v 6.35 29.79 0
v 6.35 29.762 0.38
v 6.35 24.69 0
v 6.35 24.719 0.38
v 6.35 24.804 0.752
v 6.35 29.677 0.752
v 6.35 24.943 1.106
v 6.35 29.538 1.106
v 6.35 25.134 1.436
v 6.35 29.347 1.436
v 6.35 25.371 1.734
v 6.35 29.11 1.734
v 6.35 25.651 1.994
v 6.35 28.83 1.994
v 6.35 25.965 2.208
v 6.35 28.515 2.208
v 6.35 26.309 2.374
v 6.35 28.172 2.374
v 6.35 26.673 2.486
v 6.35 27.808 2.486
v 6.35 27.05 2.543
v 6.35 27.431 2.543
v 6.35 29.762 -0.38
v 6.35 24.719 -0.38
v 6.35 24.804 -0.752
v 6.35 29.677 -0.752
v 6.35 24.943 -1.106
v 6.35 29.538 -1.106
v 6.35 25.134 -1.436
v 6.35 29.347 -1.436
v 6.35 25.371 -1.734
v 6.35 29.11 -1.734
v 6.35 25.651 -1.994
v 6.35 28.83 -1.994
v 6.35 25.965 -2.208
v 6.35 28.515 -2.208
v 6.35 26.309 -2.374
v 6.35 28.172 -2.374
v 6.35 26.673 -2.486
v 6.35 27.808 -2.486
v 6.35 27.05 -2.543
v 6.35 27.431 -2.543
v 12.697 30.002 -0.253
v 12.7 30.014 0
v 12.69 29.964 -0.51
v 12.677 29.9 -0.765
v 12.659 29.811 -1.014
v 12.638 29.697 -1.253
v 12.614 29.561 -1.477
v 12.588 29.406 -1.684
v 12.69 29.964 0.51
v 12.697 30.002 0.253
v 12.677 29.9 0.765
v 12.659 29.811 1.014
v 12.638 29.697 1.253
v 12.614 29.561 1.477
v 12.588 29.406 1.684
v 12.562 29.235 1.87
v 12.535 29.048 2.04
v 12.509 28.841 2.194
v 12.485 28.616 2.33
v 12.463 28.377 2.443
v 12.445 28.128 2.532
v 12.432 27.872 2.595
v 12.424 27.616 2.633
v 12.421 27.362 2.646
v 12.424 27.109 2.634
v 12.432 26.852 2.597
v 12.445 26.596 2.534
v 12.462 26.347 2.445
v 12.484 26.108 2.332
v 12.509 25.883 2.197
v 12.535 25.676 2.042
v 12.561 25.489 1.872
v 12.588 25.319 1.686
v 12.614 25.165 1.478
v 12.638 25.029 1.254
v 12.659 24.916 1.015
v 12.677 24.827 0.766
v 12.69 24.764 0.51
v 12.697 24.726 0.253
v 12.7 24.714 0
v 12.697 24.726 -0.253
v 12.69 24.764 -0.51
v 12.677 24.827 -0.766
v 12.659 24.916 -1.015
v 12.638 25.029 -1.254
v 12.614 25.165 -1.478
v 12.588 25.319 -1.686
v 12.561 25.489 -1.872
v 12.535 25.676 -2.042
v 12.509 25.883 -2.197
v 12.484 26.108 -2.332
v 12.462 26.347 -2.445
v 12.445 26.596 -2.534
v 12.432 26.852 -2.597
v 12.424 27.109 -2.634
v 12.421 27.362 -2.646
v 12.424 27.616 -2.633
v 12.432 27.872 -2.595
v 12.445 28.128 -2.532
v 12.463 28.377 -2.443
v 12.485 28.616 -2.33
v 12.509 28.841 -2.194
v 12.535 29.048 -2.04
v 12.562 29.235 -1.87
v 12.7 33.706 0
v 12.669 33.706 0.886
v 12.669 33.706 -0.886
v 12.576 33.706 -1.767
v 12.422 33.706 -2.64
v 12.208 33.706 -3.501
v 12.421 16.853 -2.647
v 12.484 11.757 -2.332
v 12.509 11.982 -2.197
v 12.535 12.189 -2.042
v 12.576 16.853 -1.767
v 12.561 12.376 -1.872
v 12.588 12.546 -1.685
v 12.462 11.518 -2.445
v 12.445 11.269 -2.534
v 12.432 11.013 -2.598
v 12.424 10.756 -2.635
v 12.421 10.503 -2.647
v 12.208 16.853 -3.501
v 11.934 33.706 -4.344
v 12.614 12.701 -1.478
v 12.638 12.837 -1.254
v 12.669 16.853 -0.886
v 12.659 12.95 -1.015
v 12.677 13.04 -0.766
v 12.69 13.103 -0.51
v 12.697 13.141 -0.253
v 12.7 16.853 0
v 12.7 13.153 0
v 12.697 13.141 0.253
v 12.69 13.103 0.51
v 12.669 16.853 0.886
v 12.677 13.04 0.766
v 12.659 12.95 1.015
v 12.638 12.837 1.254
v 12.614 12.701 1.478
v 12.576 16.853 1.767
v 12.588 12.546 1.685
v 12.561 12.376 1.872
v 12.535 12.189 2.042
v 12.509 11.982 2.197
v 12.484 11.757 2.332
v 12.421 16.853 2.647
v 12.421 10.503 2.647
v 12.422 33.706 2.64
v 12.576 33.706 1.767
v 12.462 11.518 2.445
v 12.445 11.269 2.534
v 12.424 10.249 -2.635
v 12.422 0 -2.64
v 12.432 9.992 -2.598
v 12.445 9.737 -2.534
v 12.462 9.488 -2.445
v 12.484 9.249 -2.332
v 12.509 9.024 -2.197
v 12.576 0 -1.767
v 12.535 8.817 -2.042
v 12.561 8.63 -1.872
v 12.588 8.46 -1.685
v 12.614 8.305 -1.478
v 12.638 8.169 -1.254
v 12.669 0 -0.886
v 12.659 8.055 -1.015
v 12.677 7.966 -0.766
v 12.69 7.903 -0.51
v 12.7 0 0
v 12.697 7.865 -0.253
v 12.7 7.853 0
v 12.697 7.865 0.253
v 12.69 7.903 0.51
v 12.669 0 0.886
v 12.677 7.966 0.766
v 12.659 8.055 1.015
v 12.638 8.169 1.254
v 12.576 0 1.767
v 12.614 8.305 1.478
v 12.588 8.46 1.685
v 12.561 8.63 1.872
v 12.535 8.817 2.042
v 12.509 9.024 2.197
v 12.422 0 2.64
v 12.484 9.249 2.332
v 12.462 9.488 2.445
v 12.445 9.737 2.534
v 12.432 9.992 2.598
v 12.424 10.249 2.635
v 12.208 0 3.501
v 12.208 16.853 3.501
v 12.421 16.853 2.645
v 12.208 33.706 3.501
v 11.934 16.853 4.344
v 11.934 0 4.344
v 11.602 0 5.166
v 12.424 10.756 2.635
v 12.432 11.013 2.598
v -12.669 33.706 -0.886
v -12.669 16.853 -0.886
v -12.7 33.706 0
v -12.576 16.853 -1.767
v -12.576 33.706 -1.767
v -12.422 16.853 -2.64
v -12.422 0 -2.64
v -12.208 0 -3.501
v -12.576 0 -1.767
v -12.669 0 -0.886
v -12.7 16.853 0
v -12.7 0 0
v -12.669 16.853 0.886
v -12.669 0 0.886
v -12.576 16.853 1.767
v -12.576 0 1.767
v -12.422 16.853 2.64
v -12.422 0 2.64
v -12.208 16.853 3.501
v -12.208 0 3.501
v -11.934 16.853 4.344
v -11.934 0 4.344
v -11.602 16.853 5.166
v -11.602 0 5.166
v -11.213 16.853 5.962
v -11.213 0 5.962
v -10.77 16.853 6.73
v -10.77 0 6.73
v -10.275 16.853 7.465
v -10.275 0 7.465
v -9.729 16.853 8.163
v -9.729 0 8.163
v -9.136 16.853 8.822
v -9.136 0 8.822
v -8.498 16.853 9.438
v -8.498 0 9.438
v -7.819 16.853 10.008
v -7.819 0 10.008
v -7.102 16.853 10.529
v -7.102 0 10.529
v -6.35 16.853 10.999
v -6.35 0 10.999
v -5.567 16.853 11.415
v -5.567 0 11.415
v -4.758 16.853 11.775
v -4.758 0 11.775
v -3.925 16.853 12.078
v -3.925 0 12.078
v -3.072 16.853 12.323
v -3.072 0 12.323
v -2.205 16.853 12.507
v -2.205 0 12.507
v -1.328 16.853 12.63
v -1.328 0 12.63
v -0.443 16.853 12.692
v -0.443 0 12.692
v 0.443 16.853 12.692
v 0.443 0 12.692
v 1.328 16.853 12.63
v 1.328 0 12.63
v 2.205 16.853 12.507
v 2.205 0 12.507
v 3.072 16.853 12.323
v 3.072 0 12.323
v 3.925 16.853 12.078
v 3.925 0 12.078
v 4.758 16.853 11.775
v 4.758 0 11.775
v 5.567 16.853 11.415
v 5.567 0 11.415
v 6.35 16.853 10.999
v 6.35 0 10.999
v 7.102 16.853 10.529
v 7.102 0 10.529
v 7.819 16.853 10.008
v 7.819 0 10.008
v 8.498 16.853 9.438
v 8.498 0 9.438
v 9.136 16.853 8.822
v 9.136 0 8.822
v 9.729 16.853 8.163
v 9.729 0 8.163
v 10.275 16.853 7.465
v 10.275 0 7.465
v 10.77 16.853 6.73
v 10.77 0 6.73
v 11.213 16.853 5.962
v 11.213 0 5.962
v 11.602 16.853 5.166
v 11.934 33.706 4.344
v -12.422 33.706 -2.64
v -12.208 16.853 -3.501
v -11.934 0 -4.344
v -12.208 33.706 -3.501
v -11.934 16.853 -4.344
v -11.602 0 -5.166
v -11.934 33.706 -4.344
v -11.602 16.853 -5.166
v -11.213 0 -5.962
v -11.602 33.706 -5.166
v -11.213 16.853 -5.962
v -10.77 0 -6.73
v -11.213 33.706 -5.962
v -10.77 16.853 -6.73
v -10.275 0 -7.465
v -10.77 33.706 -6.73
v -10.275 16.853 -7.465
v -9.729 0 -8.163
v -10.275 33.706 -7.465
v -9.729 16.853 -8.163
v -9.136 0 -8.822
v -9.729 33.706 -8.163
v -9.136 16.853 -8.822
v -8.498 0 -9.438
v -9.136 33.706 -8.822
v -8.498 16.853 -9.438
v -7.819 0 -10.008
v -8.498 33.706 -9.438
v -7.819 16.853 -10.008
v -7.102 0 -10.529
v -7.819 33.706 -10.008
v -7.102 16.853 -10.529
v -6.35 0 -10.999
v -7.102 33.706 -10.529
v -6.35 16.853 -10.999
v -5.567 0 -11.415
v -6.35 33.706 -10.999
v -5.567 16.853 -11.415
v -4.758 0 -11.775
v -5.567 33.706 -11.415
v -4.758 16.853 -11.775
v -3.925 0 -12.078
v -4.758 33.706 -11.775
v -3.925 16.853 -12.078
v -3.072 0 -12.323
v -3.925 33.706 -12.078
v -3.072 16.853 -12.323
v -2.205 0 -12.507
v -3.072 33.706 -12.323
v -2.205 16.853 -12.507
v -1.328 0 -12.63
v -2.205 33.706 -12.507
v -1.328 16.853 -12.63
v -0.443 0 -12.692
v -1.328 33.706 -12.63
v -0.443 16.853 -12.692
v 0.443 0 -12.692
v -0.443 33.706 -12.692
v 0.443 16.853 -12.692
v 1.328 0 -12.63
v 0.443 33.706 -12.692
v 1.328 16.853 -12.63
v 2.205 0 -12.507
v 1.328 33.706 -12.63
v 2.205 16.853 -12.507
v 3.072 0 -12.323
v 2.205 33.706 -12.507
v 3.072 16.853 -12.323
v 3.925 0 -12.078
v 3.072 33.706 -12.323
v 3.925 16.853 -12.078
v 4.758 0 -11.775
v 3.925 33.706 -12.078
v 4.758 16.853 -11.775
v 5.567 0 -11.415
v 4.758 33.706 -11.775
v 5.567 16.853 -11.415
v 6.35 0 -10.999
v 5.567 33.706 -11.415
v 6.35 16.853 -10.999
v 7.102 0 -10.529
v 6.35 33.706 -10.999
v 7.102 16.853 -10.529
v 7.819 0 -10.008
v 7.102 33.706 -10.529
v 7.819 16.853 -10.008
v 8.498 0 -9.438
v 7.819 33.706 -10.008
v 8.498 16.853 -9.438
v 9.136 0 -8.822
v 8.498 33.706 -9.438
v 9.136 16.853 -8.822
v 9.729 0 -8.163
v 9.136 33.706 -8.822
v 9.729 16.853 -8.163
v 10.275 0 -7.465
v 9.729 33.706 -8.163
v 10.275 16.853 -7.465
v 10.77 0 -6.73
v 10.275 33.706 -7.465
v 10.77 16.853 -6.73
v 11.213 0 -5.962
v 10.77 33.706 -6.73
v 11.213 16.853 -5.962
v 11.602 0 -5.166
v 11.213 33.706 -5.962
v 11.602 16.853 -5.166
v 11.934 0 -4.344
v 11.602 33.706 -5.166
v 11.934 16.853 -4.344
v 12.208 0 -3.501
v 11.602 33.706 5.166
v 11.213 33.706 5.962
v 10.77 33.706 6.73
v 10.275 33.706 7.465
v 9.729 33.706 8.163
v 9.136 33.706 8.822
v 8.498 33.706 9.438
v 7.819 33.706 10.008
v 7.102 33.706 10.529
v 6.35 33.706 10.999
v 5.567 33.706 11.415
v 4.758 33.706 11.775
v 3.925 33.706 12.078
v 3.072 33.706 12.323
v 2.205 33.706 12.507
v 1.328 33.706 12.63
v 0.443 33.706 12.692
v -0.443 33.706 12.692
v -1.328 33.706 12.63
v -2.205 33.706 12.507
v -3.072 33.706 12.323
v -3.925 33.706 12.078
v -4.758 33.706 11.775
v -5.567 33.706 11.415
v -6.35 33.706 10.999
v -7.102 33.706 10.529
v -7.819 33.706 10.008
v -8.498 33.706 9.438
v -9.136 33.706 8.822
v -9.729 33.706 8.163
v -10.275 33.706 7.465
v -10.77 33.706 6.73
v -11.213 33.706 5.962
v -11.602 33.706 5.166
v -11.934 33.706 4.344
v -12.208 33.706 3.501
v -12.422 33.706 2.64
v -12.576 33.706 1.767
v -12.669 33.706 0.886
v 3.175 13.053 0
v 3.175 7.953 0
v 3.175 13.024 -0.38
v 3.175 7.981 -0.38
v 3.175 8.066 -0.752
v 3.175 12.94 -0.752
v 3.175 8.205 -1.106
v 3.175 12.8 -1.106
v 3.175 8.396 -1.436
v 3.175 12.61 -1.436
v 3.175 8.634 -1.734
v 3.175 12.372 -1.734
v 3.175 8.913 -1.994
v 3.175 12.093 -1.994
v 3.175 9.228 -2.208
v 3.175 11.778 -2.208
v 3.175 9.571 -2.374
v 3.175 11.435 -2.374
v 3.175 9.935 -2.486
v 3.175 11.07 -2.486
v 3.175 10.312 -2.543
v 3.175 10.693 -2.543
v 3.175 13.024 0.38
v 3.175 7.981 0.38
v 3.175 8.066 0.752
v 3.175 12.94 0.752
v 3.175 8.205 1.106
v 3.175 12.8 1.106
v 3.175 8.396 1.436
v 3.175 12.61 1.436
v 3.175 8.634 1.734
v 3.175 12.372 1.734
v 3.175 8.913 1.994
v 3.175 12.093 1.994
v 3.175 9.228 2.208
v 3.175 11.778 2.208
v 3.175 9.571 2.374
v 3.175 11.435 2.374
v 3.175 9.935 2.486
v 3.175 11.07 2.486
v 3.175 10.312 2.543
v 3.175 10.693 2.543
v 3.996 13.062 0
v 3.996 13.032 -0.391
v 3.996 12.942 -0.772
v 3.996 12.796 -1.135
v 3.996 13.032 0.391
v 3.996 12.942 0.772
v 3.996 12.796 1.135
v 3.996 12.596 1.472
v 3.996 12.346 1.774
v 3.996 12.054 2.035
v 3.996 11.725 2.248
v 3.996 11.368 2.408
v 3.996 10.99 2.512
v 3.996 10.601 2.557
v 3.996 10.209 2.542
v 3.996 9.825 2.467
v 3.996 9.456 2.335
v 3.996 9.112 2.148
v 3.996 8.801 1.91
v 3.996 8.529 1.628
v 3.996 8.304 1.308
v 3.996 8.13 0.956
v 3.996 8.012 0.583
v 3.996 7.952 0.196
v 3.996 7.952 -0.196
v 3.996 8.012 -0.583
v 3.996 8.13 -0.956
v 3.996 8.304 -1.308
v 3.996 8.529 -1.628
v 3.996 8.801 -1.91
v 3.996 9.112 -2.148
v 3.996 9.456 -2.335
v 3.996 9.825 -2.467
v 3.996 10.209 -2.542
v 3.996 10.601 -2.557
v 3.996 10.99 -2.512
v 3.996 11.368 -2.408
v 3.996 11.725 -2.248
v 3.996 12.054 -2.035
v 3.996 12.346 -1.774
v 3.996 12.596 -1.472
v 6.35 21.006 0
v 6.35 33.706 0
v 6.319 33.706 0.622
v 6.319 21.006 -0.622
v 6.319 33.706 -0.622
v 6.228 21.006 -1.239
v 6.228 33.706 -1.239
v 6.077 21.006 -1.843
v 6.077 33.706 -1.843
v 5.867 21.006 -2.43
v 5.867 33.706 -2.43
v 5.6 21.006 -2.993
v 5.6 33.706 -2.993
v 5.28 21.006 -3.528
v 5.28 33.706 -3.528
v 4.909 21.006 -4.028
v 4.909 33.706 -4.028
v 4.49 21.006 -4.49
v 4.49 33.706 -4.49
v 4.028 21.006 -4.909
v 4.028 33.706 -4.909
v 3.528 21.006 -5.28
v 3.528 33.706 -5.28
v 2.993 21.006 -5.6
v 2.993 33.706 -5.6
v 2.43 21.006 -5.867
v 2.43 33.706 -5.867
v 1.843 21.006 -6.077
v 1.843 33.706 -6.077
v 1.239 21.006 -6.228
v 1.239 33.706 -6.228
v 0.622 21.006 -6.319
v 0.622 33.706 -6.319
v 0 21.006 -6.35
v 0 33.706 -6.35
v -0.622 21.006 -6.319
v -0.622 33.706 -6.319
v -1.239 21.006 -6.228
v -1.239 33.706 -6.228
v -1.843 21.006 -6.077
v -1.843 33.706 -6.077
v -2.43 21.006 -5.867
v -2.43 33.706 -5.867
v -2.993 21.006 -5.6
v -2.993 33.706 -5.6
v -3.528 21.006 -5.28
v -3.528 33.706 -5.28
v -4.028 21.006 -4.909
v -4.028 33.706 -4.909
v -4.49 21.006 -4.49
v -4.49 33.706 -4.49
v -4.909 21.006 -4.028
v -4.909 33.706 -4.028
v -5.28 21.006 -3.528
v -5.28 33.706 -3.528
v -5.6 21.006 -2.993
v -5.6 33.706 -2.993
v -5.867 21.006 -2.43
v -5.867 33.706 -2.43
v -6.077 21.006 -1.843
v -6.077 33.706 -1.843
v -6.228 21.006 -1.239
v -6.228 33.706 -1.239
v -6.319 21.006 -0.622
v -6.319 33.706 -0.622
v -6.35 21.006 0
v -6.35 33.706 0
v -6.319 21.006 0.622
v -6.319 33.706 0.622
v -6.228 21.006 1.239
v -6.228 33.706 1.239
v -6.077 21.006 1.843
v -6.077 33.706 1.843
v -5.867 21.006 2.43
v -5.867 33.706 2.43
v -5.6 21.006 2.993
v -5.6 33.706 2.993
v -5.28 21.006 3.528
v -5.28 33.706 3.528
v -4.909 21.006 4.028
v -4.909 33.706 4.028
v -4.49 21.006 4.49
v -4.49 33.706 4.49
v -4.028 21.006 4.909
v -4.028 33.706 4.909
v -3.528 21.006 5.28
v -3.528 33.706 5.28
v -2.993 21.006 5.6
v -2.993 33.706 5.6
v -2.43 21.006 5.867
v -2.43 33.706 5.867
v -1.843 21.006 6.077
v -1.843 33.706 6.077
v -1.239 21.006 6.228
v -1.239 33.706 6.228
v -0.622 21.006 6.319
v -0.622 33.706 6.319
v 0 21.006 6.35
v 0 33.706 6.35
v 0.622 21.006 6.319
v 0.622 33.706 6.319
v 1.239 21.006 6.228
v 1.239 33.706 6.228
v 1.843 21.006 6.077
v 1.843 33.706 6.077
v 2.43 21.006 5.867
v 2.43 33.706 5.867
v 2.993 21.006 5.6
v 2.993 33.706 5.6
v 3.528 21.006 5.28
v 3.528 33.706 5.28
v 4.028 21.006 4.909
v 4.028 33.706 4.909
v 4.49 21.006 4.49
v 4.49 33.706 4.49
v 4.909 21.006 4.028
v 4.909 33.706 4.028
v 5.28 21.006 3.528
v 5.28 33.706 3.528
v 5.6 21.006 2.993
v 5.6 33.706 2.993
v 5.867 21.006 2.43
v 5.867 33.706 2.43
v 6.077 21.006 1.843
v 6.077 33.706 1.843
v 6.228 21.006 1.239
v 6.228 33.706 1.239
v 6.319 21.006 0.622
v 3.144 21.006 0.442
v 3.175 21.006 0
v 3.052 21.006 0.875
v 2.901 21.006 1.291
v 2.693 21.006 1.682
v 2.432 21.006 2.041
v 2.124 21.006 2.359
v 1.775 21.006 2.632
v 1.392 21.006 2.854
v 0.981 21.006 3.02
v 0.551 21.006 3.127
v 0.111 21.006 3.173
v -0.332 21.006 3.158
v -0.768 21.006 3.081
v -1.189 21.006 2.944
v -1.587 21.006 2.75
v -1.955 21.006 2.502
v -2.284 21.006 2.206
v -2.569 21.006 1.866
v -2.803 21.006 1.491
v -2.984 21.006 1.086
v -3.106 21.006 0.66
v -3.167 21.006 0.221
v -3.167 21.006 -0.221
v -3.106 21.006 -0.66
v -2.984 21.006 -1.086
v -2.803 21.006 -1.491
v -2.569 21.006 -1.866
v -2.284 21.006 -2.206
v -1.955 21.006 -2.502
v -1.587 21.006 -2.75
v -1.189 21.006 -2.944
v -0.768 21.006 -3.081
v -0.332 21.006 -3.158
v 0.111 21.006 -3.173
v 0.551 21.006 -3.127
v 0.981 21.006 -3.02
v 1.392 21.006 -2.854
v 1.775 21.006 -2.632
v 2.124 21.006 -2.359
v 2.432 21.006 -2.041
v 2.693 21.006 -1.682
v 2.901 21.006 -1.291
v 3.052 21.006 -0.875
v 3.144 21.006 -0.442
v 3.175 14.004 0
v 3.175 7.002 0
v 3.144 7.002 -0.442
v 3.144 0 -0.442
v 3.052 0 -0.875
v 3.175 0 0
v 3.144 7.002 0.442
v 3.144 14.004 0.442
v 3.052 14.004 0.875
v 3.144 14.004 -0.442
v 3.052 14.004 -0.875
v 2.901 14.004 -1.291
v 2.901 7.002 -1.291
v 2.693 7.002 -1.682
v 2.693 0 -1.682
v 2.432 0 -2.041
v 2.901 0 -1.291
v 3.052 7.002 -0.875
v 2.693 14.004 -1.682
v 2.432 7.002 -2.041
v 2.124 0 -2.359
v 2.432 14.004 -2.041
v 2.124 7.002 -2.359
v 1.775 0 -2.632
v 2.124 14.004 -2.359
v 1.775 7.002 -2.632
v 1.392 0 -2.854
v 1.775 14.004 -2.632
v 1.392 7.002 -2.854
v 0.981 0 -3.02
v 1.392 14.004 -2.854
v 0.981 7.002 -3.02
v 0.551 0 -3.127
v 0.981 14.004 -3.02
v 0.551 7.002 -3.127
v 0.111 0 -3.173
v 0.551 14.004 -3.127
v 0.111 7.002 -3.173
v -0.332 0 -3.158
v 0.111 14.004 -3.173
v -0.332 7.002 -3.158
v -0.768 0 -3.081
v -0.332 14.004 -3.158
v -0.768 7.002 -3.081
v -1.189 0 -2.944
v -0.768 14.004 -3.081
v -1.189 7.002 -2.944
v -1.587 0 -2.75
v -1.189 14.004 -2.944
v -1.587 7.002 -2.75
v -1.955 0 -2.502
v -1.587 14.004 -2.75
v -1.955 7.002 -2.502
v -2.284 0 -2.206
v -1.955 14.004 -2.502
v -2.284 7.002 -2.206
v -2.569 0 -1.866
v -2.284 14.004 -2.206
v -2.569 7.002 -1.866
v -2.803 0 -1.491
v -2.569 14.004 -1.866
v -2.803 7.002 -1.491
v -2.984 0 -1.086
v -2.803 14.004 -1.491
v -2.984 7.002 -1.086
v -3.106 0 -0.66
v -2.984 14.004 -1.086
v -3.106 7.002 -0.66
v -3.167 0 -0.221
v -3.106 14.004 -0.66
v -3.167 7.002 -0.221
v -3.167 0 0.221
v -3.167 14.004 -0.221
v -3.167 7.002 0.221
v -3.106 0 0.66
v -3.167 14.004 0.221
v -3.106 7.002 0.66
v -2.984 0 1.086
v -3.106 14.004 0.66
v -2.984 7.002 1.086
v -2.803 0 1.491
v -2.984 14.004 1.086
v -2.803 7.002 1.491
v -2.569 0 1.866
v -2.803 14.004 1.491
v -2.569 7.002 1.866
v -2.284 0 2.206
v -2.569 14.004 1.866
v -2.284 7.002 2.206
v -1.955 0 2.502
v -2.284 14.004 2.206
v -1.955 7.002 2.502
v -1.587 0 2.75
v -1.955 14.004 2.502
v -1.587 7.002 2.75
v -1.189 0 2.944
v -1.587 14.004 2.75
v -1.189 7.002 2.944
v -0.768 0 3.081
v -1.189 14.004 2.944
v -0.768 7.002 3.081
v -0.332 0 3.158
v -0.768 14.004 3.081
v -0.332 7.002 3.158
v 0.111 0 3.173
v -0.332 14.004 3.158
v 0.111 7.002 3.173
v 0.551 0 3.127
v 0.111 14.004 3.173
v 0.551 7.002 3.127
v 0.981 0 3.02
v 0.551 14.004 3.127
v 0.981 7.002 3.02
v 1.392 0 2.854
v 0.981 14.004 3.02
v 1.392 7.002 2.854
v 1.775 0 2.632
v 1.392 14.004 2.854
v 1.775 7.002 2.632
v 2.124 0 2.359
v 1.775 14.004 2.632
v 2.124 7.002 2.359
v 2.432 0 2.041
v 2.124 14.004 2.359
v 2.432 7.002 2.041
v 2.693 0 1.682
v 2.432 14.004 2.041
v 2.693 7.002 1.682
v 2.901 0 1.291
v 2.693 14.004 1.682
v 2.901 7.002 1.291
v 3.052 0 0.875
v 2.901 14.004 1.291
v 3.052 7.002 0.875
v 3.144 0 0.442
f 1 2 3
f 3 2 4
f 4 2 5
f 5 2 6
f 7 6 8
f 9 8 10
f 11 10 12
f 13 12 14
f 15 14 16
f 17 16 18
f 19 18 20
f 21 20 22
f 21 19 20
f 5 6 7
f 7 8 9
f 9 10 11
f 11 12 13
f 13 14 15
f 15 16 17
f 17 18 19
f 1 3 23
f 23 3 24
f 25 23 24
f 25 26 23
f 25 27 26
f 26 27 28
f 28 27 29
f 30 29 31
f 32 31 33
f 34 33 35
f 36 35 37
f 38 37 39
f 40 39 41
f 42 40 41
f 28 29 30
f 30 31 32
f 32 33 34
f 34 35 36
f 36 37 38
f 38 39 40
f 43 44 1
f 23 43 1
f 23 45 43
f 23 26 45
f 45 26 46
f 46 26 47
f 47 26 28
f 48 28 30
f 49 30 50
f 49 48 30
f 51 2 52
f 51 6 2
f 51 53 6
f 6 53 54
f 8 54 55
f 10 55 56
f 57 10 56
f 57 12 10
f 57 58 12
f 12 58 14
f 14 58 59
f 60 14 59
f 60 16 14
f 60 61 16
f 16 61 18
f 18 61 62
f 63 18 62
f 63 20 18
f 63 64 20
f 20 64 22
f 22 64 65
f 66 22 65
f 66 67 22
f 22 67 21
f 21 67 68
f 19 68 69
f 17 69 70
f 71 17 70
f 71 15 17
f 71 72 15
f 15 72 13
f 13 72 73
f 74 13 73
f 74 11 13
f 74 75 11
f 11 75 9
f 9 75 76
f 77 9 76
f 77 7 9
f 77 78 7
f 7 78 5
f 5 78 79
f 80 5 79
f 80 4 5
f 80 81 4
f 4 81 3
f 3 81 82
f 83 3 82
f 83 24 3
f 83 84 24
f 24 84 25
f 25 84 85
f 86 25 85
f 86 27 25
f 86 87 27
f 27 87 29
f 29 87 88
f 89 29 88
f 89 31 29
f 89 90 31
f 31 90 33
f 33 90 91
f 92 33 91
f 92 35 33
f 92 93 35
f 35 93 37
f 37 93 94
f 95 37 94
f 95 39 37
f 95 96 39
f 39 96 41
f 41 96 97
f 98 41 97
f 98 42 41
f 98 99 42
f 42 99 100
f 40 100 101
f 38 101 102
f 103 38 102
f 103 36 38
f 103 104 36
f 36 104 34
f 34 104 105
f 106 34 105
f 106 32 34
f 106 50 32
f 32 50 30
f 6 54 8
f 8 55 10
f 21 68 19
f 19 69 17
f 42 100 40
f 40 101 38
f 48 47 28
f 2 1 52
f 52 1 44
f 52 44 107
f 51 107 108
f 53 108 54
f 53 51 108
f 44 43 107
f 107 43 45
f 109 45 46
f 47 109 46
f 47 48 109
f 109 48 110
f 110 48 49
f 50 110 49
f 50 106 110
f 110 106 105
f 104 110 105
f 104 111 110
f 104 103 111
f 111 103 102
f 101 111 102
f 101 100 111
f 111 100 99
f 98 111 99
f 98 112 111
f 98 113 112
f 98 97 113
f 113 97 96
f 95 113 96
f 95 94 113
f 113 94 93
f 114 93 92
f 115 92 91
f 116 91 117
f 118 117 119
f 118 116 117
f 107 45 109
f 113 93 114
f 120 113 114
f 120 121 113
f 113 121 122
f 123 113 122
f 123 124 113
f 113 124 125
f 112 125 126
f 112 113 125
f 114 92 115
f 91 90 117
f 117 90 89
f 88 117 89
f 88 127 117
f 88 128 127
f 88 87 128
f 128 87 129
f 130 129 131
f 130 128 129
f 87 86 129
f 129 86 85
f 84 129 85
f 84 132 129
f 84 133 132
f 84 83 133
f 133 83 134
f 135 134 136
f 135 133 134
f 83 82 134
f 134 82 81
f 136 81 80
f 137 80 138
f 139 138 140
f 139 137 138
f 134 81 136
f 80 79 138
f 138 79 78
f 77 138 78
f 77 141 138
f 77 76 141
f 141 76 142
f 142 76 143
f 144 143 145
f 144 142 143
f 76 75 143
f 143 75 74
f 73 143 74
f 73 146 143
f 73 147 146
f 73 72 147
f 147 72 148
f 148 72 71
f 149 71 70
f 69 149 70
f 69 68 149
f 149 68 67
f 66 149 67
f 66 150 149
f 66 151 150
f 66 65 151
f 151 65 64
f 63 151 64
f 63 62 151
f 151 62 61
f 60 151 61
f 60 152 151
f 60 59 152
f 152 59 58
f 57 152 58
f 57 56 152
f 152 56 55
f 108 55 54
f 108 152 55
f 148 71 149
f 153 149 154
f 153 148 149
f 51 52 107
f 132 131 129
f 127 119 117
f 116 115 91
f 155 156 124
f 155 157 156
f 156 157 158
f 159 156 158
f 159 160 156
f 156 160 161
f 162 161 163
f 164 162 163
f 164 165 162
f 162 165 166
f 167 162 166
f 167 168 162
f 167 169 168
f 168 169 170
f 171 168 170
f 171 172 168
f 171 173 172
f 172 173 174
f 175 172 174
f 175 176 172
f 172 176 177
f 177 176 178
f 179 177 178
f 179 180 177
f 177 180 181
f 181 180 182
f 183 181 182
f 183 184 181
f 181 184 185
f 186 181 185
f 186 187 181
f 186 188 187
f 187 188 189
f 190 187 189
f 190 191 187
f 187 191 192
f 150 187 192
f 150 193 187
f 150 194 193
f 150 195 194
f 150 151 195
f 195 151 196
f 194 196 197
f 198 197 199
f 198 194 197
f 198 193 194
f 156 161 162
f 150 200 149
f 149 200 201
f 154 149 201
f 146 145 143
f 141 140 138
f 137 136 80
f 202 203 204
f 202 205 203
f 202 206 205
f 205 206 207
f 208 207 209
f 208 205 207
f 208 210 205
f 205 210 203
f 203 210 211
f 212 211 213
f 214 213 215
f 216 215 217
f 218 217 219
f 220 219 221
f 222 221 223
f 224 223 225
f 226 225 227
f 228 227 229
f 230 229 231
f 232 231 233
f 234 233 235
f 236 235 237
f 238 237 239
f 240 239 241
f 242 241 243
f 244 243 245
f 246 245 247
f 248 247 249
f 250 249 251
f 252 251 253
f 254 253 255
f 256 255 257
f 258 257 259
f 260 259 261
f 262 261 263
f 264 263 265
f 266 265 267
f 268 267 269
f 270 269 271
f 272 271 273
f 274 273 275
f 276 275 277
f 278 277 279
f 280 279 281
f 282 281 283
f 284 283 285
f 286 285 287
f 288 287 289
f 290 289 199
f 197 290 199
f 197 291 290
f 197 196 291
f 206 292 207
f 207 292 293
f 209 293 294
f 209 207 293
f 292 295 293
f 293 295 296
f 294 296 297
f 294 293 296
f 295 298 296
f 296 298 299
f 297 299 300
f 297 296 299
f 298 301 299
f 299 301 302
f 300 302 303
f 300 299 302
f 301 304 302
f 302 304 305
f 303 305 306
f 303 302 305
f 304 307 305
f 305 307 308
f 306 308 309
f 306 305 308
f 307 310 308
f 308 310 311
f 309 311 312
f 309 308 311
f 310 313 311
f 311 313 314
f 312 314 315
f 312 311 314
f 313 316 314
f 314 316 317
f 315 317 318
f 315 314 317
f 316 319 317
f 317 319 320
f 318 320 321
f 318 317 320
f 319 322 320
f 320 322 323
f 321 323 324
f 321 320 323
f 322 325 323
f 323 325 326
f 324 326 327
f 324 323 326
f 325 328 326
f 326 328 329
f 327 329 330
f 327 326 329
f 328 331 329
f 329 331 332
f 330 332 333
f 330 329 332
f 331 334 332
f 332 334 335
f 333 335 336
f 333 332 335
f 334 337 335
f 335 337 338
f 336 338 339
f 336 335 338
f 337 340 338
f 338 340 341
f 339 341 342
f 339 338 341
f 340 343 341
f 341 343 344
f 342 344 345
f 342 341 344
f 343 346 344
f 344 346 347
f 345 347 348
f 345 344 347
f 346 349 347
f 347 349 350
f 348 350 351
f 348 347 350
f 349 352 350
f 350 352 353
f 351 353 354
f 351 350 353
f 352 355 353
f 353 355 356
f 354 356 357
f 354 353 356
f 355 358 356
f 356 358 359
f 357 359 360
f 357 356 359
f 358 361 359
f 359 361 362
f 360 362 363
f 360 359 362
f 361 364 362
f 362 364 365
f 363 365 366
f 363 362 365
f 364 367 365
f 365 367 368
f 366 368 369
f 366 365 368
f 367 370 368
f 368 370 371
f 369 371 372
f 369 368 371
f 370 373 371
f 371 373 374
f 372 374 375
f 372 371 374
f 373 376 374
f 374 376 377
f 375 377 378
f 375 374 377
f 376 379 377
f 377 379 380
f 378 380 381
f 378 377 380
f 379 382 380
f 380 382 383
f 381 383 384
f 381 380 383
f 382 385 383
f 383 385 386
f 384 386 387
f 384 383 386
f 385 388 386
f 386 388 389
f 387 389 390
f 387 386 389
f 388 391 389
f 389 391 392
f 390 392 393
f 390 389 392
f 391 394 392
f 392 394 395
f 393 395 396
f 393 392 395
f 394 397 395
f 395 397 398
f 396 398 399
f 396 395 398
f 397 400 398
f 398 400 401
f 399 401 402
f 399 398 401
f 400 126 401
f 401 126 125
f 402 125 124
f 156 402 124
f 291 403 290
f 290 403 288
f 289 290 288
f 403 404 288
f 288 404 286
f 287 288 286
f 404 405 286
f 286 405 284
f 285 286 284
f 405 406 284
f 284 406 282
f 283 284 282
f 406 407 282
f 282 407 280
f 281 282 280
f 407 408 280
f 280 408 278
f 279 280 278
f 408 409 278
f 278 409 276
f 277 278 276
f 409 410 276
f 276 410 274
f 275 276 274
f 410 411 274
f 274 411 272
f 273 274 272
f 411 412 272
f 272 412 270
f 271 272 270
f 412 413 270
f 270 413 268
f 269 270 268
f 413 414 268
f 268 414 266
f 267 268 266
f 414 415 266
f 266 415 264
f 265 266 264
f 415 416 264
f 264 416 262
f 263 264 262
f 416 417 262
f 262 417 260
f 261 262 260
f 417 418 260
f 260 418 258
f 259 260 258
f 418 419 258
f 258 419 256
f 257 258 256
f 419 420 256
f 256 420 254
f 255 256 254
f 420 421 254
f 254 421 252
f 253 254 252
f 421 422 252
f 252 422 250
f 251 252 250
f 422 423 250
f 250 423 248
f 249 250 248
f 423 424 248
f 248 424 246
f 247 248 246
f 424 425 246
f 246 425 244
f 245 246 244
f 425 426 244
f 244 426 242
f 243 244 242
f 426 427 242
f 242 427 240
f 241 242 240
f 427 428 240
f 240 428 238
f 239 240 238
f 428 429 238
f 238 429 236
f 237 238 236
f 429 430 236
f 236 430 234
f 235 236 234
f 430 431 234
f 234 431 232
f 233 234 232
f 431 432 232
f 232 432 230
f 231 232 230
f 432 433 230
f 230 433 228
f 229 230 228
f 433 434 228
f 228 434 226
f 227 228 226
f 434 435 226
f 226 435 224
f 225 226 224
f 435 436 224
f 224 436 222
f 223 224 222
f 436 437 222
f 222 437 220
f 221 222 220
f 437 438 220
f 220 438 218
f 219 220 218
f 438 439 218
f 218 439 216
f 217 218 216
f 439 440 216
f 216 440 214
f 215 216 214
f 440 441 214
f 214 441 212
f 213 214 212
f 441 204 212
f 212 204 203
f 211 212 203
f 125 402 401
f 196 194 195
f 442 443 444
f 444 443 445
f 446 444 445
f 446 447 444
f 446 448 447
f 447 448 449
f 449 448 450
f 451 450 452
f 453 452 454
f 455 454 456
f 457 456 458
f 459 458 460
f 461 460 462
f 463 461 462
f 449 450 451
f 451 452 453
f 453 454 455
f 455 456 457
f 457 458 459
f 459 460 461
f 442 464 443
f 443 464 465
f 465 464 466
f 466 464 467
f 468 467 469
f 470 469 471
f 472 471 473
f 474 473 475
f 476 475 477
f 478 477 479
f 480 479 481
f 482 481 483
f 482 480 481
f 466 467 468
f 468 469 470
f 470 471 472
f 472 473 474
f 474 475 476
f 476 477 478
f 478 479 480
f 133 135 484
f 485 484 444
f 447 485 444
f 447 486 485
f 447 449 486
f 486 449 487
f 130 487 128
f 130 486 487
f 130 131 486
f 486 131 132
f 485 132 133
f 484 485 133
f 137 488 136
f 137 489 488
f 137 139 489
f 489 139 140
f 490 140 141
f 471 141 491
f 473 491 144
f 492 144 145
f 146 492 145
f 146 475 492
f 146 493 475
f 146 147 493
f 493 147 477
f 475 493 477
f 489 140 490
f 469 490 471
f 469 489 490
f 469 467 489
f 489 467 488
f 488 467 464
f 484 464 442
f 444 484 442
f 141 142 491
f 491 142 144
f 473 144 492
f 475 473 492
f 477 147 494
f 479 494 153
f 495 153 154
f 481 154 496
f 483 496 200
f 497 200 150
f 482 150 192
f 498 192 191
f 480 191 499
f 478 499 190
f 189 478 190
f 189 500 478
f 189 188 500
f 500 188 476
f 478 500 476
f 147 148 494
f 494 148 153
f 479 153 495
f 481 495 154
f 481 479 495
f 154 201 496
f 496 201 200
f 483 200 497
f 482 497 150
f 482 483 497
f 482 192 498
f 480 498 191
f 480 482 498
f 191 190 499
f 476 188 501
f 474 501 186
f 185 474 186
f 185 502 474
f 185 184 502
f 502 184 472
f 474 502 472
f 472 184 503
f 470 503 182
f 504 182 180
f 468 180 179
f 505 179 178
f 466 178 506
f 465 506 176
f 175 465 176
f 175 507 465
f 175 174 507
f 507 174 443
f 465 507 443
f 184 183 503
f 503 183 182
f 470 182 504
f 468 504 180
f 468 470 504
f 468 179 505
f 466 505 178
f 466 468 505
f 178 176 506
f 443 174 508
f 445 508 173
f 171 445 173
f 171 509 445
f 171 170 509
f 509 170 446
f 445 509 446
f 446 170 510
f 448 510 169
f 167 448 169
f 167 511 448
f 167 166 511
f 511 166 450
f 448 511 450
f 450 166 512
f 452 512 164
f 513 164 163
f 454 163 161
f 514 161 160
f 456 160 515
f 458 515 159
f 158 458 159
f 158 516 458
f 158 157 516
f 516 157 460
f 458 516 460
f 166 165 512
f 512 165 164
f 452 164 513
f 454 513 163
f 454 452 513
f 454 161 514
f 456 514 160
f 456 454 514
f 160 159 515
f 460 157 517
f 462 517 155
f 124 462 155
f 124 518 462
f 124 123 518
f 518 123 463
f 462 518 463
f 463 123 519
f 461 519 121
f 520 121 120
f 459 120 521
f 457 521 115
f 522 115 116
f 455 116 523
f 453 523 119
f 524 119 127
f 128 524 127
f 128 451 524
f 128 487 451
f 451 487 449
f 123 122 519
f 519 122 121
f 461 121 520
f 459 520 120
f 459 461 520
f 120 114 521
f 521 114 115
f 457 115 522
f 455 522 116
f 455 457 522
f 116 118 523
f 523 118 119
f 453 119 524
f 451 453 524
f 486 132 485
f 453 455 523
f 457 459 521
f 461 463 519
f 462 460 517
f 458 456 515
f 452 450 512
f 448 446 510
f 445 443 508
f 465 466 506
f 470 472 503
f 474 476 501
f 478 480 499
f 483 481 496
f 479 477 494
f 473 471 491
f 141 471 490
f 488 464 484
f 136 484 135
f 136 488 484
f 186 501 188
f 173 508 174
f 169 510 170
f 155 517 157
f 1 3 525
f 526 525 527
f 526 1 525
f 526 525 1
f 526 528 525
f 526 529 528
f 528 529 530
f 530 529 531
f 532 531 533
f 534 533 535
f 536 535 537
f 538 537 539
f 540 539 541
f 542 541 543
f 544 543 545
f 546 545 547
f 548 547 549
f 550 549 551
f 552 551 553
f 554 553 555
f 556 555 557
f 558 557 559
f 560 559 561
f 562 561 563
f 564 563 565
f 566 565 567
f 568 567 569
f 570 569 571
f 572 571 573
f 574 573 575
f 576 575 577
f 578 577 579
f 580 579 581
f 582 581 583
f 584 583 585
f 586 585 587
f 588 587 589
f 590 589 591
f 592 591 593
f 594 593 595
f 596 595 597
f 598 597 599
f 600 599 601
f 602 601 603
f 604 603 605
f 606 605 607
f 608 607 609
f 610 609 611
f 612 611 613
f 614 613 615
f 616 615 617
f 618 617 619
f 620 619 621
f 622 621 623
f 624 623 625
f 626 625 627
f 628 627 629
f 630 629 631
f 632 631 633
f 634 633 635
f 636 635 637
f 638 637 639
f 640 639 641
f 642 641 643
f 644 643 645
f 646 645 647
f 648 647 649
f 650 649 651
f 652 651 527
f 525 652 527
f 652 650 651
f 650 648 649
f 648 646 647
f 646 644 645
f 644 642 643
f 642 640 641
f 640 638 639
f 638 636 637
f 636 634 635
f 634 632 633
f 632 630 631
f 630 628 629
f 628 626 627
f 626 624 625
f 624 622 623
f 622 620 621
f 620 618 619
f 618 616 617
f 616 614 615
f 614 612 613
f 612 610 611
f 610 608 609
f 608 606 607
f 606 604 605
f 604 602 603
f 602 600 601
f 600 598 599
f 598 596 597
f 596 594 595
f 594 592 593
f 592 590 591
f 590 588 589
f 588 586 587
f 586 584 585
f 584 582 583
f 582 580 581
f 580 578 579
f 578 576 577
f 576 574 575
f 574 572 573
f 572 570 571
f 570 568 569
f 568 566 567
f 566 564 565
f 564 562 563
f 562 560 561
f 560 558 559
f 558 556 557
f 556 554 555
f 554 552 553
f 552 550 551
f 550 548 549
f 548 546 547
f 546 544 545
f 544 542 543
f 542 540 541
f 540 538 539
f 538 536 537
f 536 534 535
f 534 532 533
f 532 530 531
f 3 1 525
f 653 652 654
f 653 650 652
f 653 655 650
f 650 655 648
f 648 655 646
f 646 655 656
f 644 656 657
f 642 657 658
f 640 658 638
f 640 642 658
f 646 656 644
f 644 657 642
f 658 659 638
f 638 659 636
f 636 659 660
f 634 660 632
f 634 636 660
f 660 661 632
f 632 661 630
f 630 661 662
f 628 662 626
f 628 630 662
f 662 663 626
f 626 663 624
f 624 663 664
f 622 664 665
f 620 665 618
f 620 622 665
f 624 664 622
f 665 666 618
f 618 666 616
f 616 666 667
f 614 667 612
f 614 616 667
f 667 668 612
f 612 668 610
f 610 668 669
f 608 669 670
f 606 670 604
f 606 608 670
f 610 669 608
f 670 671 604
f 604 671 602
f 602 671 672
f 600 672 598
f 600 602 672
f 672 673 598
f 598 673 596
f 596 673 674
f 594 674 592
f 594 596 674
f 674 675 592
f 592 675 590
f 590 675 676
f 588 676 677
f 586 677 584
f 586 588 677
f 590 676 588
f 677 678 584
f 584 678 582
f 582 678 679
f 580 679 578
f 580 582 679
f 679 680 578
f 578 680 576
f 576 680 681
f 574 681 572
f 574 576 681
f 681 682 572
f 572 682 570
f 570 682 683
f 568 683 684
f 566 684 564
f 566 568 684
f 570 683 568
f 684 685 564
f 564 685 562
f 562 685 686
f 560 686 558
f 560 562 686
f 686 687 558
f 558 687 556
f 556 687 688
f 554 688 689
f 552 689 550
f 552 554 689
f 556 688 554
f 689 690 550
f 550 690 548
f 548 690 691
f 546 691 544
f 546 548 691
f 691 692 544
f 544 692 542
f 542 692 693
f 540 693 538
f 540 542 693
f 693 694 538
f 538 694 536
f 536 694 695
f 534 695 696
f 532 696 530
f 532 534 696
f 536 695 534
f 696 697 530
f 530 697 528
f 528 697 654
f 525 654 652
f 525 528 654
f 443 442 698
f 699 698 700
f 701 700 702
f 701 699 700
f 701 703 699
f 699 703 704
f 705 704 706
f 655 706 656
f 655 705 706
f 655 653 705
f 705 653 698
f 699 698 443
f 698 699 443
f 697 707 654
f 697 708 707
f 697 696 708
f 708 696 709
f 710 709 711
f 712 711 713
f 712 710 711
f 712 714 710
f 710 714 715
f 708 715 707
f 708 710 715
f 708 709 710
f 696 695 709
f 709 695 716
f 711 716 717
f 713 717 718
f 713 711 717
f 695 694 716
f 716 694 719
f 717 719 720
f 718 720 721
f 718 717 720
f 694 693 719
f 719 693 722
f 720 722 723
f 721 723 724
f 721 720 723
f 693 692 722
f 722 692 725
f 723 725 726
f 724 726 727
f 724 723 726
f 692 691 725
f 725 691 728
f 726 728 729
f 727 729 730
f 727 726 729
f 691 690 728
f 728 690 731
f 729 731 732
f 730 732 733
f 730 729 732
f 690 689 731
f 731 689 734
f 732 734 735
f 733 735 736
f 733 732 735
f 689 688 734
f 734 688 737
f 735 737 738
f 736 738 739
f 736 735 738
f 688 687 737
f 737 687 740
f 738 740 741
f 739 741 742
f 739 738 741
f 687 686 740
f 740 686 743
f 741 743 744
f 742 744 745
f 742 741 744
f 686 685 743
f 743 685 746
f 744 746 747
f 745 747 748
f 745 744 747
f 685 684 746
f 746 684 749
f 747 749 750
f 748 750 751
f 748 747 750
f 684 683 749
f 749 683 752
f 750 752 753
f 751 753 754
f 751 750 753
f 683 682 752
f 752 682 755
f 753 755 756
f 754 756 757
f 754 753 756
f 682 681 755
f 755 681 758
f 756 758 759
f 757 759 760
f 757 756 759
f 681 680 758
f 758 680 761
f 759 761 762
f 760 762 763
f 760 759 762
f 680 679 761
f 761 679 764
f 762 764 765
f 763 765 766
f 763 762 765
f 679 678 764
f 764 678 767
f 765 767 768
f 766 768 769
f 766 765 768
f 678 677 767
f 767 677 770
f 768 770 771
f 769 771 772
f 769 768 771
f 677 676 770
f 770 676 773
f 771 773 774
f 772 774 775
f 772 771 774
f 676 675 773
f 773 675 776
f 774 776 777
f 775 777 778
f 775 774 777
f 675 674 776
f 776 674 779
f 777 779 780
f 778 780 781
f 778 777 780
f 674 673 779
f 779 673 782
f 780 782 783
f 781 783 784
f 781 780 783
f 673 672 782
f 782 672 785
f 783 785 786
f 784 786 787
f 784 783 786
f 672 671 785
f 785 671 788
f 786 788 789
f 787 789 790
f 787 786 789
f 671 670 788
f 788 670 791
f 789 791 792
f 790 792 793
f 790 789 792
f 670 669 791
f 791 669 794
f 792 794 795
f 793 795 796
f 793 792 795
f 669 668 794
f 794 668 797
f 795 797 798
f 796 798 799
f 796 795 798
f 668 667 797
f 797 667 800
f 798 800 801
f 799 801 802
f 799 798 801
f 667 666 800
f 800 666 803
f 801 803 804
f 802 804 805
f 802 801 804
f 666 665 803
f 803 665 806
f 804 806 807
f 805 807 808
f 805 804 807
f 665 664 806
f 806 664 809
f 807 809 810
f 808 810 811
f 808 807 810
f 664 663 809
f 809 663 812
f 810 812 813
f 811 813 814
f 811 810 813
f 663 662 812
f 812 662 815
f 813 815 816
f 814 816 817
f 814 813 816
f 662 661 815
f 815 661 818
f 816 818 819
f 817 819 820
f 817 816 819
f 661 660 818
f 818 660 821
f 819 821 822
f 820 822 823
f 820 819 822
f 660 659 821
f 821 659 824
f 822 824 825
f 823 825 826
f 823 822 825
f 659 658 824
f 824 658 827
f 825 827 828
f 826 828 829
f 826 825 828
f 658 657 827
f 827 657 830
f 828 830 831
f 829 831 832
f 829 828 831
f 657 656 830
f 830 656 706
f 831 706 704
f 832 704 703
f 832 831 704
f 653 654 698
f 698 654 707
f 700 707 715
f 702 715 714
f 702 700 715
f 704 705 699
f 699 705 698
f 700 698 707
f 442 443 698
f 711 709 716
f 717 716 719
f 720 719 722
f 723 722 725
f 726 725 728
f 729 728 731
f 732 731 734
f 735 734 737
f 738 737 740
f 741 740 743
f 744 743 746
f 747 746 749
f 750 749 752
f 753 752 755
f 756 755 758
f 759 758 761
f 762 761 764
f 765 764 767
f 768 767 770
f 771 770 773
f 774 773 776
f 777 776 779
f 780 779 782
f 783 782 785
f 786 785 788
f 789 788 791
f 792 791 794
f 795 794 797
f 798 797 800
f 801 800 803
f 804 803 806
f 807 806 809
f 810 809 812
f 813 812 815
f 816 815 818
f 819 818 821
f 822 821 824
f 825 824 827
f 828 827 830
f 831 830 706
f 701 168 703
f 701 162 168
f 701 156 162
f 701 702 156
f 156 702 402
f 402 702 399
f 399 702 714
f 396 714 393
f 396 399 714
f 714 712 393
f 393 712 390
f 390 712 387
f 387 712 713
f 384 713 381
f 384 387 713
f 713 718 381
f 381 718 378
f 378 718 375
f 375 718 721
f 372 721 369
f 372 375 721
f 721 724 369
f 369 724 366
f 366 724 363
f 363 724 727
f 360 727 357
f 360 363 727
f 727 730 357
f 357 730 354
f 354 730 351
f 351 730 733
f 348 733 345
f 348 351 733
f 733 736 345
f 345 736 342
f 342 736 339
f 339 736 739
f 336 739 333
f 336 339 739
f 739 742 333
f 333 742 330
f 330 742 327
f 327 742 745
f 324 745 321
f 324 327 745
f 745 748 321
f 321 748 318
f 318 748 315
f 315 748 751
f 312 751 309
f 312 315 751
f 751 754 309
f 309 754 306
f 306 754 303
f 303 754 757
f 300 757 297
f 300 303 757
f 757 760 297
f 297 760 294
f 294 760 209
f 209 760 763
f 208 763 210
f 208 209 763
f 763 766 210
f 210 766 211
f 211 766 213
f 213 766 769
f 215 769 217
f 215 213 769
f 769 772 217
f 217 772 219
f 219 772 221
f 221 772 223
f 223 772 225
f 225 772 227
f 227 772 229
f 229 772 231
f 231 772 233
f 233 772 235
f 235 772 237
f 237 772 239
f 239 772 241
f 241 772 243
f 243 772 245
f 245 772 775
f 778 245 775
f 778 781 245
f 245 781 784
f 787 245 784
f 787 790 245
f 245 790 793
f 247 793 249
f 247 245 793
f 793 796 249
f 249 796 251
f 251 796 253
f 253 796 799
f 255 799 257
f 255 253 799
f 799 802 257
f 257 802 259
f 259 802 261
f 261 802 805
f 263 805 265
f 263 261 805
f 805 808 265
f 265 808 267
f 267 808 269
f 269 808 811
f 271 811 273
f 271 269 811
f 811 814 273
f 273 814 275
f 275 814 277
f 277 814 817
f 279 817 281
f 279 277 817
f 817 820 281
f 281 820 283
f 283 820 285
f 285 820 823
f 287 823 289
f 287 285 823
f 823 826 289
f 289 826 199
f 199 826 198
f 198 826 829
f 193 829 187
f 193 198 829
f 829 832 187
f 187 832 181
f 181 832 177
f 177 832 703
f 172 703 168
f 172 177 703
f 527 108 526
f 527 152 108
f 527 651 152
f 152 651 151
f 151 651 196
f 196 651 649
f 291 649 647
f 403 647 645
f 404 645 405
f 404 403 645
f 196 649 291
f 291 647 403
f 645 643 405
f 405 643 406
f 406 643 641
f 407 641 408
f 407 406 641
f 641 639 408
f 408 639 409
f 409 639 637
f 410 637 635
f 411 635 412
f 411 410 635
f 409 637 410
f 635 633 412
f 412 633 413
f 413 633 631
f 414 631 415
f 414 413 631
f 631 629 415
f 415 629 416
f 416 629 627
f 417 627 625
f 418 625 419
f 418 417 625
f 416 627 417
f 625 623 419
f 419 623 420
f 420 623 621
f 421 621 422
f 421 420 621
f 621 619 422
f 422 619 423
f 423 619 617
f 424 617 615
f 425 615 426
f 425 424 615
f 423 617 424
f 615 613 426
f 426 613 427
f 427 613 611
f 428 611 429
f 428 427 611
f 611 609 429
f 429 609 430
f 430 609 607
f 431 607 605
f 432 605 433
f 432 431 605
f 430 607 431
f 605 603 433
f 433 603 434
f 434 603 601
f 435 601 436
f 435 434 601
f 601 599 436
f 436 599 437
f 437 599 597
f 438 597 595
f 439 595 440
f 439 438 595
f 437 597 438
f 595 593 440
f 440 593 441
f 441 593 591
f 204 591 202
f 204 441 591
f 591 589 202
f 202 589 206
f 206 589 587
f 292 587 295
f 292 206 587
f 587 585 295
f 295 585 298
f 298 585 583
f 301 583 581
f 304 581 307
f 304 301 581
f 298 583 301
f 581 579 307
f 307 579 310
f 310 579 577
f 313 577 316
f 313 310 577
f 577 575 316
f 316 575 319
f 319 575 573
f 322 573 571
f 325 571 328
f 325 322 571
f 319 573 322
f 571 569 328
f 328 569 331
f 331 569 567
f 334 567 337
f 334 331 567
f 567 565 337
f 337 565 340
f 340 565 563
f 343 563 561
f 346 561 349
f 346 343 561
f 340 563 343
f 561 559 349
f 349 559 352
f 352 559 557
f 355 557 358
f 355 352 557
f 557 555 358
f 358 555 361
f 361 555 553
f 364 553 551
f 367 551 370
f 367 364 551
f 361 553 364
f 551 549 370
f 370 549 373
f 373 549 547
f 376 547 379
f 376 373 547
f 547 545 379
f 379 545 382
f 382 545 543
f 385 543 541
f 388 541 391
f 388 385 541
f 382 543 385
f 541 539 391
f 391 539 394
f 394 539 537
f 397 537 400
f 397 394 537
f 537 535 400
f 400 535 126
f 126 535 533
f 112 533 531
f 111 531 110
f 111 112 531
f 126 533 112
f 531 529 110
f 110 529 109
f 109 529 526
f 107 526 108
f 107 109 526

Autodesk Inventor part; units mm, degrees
ref_plane "XZ Plane" through (0, 0, 0) normal (0, 1, 0) x (-1, 0, 0)
ref_plane "XY Plane" through (0, 0, 0) normal (0, 0, 1) x (1, 0, 0)
sketch "Sketch1" plane through (0, 0, 0) normal (0, 1, 0) x (-1, 0, 0)
  circle A0 centre (0, 0) radius 12.7
  dimension "d0" = 25.4
extrude "Extrusion1" add sketch "Sketch1" along normal blind 33.7058
sketch "Sketch2" plane through (0, 0, 0) normal (0, -1, 0) x (1, 0, 0)
  circle A0 centre (0, 0) radius 3.175
  dimension "d3" = 6.35
extrude "Extrusion2" cut sketch "Sketch2" against normal blind 21.0058
sketch "Sketch3" plane through (0, 33.7058, 0) normal (0, 1, 0) x (1, 0, 0)
  circle A0 centre (0, 0) radius 6.35
  dimension "d6" = 12.7
extrude "Extrusion3" cut sketch "Sketch3" against normal blind 12.7
ref_plane "Work Plane1" through (3.175, 0, 0) normal (1, 0, 0) x (0, 1, 0)
sketch "Sketch4" plane through (3.175, 0, 0) normal (1, 0, 0) x (0, 1, 0)
  line L0 (0, 0) -> (21.0058, 0) construction
  line L1 (21.0058, -3.175) -> (21.0058, 3.175) construction
  circle A0 centre (10.5029, 0) radius 2.55
  dimension "d10" = 5.1
ref_plane "Work Plane2" through (6.35, 0, 0) normal (1, 0, 0) x (0, 1, 0)
sketch "Sketch5" plane through (6.35, 0, 0) normal (1, 0, 0) x (0, 1, 0)
  line L0 (33.4751, 0) -> (21.0058, 0) construction
  line L1 (21.0058, -3.175) -> (21.0058, 3.175) construction
  circle A0 centre (27.2404, 0) radius 2.55
  point P0 (0, 0)
  dimension "d12" = 5.1
ref_plane "Work Plane3" through (12.7, 0, 0) normal (1, 0, 0) x (0, 1, 0)
sketch "Sketch6" plane through (12.7, 0, 0) normal (1, 0, 0) x (0, 1, 0)
  line L0 (21.0058, -3.175) -> (21.0058, 3.175) construction
  line L1 (21.0058, 0) -> (0, 0) construction
  circle A0 centre (10.5029, 0) radius 2.65
  dimension "d14" = 5.3
sketch "Sketch7" plane through (12.7, 0, 0) normal (1, 0, 0) x (0, 1, 0)
  line L0 (21.0058, -3.175) -> (21.0058, 3.175) construction
  line L1 (21.0058, 0) -> (33.7221, 0) construction
  circle A0 centre (27.364, 0) radius 2.65
  point P0 (0, 0)
  dimension "d15" = 5.3
loft "Loft1" cut profiles "Sketch4", "Sketch6"
loft "Loft2" cut profiles "Sketch5", "Sketch7"
properties part number "Motor Coupler" material "ABS Plastic"
